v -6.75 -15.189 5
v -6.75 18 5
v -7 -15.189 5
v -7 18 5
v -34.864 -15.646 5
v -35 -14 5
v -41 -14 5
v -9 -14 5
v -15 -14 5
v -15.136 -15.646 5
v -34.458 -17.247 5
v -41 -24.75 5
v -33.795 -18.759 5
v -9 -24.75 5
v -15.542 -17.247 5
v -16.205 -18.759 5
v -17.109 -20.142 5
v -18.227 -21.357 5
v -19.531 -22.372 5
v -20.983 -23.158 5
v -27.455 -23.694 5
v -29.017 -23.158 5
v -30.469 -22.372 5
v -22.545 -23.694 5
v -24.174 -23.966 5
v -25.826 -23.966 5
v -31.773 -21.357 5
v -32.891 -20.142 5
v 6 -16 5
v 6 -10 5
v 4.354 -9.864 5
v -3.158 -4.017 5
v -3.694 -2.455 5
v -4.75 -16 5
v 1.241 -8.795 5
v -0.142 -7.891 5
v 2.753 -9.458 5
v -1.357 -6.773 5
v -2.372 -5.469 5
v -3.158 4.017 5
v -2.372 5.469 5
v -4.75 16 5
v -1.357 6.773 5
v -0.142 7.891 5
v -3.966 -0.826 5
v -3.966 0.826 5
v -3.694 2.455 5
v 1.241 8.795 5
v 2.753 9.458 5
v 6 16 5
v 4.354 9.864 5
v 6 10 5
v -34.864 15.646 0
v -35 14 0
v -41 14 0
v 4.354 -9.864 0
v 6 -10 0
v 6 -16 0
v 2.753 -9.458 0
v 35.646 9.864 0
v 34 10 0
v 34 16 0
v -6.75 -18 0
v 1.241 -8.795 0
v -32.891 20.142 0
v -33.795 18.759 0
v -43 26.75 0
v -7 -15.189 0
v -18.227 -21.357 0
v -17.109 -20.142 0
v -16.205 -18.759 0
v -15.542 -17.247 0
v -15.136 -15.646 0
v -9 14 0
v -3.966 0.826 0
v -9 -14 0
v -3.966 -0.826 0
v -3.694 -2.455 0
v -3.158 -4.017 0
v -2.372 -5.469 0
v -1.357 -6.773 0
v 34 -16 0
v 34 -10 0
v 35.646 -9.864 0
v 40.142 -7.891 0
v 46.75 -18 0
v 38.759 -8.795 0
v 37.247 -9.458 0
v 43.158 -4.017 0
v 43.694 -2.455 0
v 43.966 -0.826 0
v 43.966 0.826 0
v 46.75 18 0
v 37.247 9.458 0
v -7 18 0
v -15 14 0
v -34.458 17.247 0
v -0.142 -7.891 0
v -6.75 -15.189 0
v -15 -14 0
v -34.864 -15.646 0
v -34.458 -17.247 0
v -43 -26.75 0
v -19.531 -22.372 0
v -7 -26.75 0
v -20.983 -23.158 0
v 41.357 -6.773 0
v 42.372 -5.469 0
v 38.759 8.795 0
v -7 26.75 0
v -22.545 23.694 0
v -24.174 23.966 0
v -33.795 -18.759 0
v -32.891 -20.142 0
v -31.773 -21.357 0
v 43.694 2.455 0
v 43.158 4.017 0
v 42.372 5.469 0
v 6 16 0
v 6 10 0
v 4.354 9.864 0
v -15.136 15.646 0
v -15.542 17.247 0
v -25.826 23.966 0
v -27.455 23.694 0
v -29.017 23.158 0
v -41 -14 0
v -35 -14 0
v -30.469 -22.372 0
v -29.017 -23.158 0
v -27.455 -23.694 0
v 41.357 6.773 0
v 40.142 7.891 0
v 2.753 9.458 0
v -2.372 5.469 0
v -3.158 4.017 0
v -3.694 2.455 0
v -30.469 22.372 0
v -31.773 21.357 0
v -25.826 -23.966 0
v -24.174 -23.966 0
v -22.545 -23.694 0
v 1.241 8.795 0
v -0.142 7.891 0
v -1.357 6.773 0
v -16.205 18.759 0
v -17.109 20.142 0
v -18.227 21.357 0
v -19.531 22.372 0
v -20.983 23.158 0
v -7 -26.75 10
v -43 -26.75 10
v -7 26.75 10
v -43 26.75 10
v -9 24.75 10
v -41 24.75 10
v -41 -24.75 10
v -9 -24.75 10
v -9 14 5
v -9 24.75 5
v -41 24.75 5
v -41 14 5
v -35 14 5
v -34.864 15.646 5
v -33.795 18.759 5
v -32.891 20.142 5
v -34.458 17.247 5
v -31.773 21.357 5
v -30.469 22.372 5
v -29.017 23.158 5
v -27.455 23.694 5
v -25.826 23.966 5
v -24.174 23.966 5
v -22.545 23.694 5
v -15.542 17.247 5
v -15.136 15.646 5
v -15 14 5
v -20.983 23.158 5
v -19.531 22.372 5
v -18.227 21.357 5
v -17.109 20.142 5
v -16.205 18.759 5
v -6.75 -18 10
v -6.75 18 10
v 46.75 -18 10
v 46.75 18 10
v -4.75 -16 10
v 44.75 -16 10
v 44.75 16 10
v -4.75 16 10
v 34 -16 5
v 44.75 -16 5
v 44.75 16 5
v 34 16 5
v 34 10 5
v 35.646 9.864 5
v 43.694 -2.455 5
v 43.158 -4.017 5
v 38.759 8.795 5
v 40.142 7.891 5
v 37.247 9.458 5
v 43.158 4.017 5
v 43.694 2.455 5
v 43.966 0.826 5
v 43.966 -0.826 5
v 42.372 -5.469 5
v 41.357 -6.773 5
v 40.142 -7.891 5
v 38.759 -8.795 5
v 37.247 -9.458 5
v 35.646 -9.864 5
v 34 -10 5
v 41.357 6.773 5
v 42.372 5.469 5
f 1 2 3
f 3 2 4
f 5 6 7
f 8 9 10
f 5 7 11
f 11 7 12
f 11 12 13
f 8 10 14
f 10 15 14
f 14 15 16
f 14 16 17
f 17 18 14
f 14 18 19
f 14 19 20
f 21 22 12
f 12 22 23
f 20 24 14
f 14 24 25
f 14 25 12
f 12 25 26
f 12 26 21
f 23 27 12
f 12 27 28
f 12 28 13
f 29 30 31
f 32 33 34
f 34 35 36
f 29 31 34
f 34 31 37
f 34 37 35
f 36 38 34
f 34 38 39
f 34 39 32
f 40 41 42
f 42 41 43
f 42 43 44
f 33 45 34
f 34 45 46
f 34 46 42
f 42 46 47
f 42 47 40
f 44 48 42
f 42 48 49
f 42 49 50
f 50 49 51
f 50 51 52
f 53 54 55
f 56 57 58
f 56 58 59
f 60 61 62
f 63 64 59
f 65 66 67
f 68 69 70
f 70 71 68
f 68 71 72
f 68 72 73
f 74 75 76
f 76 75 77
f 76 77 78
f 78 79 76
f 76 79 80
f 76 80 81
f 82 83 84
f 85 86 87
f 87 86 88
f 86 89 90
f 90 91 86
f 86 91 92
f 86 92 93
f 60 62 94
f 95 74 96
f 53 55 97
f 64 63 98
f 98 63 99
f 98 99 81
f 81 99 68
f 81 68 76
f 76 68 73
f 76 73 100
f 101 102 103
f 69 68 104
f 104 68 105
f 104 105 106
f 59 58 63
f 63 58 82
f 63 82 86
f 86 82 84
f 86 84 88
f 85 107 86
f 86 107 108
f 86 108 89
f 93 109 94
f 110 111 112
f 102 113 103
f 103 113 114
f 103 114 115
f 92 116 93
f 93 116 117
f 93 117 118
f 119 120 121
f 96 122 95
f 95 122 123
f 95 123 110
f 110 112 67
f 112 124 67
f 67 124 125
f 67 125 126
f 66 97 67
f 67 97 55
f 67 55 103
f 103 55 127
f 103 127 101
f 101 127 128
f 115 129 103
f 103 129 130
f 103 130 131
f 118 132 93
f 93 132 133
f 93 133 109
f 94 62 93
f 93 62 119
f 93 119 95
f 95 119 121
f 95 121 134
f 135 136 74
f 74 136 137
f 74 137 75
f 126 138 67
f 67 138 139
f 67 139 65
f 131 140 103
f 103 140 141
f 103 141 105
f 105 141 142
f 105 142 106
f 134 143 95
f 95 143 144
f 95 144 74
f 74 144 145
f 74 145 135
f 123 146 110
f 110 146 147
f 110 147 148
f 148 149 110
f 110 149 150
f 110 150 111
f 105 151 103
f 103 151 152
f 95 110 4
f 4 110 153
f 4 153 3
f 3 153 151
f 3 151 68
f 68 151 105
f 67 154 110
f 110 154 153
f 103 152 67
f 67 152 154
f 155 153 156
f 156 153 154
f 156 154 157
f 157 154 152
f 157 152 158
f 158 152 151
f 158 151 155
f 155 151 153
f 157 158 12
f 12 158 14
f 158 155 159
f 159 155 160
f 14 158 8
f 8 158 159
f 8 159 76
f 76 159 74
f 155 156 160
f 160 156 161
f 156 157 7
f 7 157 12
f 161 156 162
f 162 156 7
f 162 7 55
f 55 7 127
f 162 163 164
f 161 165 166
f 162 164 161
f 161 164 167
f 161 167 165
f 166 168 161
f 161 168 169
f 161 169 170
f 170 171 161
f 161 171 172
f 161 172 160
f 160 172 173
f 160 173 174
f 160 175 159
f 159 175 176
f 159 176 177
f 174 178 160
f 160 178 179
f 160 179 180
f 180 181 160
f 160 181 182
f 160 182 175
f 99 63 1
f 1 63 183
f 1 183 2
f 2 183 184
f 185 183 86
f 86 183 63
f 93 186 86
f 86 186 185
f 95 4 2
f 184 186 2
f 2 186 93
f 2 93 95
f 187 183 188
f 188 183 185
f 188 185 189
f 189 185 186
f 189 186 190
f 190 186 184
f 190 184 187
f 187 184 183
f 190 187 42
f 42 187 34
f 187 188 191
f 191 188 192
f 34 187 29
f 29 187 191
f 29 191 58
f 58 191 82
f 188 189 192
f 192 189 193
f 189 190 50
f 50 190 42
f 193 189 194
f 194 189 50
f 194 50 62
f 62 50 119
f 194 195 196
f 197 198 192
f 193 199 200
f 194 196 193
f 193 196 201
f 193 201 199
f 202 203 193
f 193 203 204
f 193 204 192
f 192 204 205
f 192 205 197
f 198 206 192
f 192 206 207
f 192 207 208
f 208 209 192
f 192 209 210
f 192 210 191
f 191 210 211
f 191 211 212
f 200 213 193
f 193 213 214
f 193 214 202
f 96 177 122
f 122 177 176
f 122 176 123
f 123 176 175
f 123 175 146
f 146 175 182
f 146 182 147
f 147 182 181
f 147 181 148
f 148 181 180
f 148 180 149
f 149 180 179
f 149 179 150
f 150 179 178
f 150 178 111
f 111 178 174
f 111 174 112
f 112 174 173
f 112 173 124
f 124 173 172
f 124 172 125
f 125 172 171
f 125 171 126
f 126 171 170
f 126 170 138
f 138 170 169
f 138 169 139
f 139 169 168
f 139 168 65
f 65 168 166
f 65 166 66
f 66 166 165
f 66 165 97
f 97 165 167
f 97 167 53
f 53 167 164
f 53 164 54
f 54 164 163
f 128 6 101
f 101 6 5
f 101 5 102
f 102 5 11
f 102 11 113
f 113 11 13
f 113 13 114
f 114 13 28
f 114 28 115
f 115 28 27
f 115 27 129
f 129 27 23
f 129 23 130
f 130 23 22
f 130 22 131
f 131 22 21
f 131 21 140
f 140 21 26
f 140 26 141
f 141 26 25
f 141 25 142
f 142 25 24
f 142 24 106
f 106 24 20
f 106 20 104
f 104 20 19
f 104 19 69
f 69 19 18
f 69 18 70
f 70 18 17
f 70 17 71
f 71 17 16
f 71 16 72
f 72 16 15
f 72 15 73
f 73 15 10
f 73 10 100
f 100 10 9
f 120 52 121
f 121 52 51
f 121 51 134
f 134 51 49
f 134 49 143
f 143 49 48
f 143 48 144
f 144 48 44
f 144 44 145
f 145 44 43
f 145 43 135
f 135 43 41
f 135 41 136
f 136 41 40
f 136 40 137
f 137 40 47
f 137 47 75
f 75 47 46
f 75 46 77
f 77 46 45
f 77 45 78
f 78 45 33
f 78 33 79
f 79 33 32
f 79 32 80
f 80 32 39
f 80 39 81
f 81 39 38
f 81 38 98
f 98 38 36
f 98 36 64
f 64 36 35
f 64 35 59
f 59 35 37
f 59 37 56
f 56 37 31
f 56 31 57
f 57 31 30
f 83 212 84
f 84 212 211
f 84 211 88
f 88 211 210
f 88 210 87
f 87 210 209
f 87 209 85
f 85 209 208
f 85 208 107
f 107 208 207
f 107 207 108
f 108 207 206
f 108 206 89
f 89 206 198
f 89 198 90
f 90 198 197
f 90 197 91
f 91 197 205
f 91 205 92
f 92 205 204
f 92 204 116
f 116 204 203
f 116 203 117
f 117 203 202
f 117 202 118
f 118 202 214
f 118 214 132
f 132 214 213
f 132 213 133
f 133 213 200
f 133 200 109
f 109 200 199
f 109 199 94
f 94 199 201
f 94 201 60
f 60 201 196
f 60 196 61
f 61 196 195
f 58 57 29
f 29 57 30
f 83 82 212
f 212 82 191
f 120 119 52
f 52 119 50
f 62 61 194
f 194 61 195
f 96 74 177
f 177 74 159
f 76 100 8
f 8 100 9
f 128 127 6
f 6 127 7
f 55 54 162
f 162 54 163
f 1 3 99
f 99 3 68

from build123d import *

# Parameters (mm, degrees)
SKETCH1_W           = 100
SKETCH1_H           = 55
BOSS_EXTRUDE1_DEPTH = 5
SKETCH2_W           = 36
SKETCH2_H           = 53.5
SKETCH2_W_2         = 32
SKETCH2_H_2         = 49.5
SKETCH2_W_3         = 53.5
SKETCH2_H_3         = 36
SKETCH2_W_4         = 49.5
SKETCH2_H_4         = 32
EXTRUDE_THIN3_DEPTH = 5
SKETCH3_W           = 10
SKETCH3_H           = 14
CUT_EXTRUDE1_DEPTH  = 5
SKETCH4_W           = 14
SKETCH4_H           = 10
CUT_EXTRUDE2_DEPTH  = 5
SKETCH5_W           = 6
SKETCH5_H           = 28
SKETCH5_W_2         = 28
SKETCH5_H_2         = 6
CUT_EXTRUDE3_DEPTH  = 5
CUT_EXTRUDE4_DEPTH  = 10
SKETCH7_W           = 3.25
SKETCH7_H           = 5
CUT_EXTRUDE5_DEPTH  = 10


with BuildPart() as part:
    # Sketch1 → Boss-Extrude1 (new body)
    with BuildSketch(Plane.XY):
        Rectangle(SKETCH1_W, SKETCH1_H)
    extrude(amount=BOSS_EXTRUDE1_DEPTH)

    # Sketch2 → Extrude-Thin3 (add)
    # profile 1 of 2: a face of its own
    with BuildSketch(Plane.XY.offset(5)):
        with Locations((-25, 0)):
            Rectangle(SKETCH2_W, SKETCH2_H)
        with Locations((-25, 0)):
            Rectangle(SKETCH2_W_2, SKETCH2_H_2, mode=Mode.SUBTRACT)
    # profile 2 of 2: a face of its own
    with BuildSketch(Plane.XY.offset(5)):
        with Locations((20, 0)):
            Rectangle(SKETCH2_W_3, SKETCH2_H_3)
        with Locations((20, 0)):
            Rectangle(SKETCH2_W_4, SKETCH2_H_4, mode=Mode.SUBTRACT)
    extrude(amount=EXTRUDE_THIN3_DEPTH)

    # Sketch3 → Cut-Extrude1 (cut)
    with BuildSketch(Plane.XY.offset(5)):
        with BuildLine():
            ThreePointArc((-25, 24), (-32.071067812, 21.071067812), (-35, 14))
            Line((-35, 14), (-25, 14))
            Line((-25, 14), (-25, 24))
        make_face()
        with BuildLine():
            Line((-25, 24), (-25, 14))
            Line((-25, 14), (-15, 14))
            ThreePointArc((-15, 14), (-17.928932188, 21.071067812), (-25, 24))
        make_face()
        with Locations((-30, 7)):
            Rectangle(SKETCH3_W, SKETCH3_H)
        with Locations((-20, 7)):
            Rectangle(SKETCH3_W, SKETCH3_H)
        with Locations((-20, -7)):
            Rectangle(SKETCH3_W, SKETCH3_H)
        with Locations((-30, -7)):
            Rectangle(SKETCH3_W, SKETCH3_H)
        with BuildLine():
            Line((-25, -14), (-35, -14))
            ThreePointArc((-35, -14), (-32.071067812, -21.071067812), (-25, -24))
            Line((-25, -24), (-25, -14))
        make_face()
        with BuildLine():
            Line((-15, -14), (-25, -14))
            Line((-25, -14), (-25, -24))
            ThreePointArc((-25, -24), (-17.928932188, -21.071067812), (-15, -14))
        make_face()
    extrude(amount=-CUT_EXTRUDE1_DEPTH, mode=Mode.SUBTRACT)

    # Sketch4 → Cut-Extrude2 (cut)
    with BuildSketch(Plane.XY.offset(5)):
        with Locations((13, 5)):
            Rectangle(SKETCH4_W, SKETCH4_H)
        with Locations((27, 5)):
            Rectangle(SKETCH4_W, SKETCH4_H)
        with Locations((27, -5)):
            Rectangle(SKETCH4_W, SKETCH4_H)
        with Locations((13, -5)):
            Rectangle(SKETCH4_W, SKETCH4_H)
        with BuildLine():
            Line((6, 0), (6, 10))
            ThreePointArc((6, 10), (-1.071067812, 7.071067812), (-4, 0))
            Line((-4, 0), (6, 0))
        make_face()
        with BuildLine():
            Line((6, -10), (6, 0))
            Line((6, 0), (-4, 0))
            ThreePointArc((-4, 0), (-1.071067812, -7.071067812), (6, -10))
        make_face()
        with BuildLine():
            ThreePointArc((44, 0), (41.071067812, 7.071067812), (34, 10))
            Line((34, 10), (34, 0))
            Line((34, 0), (44, 0))
        make_face()
        with BuildLine():
            Line((44, 0), (34, 0))
            Line((34, 0), (34, -10))
            ThreePointArc((34, -10), (41.071067812, -7.071067812), (44, 0))
        make_face()
    extrude(amount=-CUT_EXTRUDE2_DEPTH, mode=Mode.SUBTRACT)

    # Sketch5 → Cut-Extrude3 (cut)
    with BuildSketch(Plane.XY.offset(5)):
        with Locations((-12, 0)):
            Rectangle(SKETCH5_W, SKETCH5_H)
        with Locations((-38, 0)):
            Rectangle(SKETCH5_W, SKETCH5_H)
        with Locations((20, 13)):
            Rectangle(SKETCH5_W_2, SKETCH5_H_2)
        with Locations((20, -13)):
            Rectangle(SKETCH5_W_2, SKETCH5_H_2)
    extrude(amount=-CUT_EXTRUDE3_DEPTH, mode=Mode.SUBTRACT)

    # Sketch6 → Cut-Extrude4 (cut)
    with BuildSketch(Plane.XY.offset(5)):
        Polygon((-50, 27.5), (-50, -27.5), (50, -27.5), (50, -18), (-6.75, -18), (-6.75, -15.188993876), (-7, -15.188993876), (-7, -26.75), (-43, -26.75), (-43, 26.75), (-7, 26.75), (-7, 18), (46.75, 18), (46.75, -15.188993876), (50, -15.188993876), (50, 27.5), align=None)
    extrude(amount=-CUT_EXTRUDE4_DEPTH, mode=Mode.SUBTRACT)

    # Sketch7 → Cut-Extrude5 (cut)
    with BuildSketch(Plane(origin=(0, -15.188993876, 0), x_dir=(1, 0, 0), z_dir=(0, 1, 0))):
        with Locations((48.375, -2.5)):
            Rectangle(SKETCH7_W, SKETCH7_H)
    extrude(amount=-CUT_EXTRUDE5_DEPTH, mode=Mode.SUBTRACT)


solid = part.part
